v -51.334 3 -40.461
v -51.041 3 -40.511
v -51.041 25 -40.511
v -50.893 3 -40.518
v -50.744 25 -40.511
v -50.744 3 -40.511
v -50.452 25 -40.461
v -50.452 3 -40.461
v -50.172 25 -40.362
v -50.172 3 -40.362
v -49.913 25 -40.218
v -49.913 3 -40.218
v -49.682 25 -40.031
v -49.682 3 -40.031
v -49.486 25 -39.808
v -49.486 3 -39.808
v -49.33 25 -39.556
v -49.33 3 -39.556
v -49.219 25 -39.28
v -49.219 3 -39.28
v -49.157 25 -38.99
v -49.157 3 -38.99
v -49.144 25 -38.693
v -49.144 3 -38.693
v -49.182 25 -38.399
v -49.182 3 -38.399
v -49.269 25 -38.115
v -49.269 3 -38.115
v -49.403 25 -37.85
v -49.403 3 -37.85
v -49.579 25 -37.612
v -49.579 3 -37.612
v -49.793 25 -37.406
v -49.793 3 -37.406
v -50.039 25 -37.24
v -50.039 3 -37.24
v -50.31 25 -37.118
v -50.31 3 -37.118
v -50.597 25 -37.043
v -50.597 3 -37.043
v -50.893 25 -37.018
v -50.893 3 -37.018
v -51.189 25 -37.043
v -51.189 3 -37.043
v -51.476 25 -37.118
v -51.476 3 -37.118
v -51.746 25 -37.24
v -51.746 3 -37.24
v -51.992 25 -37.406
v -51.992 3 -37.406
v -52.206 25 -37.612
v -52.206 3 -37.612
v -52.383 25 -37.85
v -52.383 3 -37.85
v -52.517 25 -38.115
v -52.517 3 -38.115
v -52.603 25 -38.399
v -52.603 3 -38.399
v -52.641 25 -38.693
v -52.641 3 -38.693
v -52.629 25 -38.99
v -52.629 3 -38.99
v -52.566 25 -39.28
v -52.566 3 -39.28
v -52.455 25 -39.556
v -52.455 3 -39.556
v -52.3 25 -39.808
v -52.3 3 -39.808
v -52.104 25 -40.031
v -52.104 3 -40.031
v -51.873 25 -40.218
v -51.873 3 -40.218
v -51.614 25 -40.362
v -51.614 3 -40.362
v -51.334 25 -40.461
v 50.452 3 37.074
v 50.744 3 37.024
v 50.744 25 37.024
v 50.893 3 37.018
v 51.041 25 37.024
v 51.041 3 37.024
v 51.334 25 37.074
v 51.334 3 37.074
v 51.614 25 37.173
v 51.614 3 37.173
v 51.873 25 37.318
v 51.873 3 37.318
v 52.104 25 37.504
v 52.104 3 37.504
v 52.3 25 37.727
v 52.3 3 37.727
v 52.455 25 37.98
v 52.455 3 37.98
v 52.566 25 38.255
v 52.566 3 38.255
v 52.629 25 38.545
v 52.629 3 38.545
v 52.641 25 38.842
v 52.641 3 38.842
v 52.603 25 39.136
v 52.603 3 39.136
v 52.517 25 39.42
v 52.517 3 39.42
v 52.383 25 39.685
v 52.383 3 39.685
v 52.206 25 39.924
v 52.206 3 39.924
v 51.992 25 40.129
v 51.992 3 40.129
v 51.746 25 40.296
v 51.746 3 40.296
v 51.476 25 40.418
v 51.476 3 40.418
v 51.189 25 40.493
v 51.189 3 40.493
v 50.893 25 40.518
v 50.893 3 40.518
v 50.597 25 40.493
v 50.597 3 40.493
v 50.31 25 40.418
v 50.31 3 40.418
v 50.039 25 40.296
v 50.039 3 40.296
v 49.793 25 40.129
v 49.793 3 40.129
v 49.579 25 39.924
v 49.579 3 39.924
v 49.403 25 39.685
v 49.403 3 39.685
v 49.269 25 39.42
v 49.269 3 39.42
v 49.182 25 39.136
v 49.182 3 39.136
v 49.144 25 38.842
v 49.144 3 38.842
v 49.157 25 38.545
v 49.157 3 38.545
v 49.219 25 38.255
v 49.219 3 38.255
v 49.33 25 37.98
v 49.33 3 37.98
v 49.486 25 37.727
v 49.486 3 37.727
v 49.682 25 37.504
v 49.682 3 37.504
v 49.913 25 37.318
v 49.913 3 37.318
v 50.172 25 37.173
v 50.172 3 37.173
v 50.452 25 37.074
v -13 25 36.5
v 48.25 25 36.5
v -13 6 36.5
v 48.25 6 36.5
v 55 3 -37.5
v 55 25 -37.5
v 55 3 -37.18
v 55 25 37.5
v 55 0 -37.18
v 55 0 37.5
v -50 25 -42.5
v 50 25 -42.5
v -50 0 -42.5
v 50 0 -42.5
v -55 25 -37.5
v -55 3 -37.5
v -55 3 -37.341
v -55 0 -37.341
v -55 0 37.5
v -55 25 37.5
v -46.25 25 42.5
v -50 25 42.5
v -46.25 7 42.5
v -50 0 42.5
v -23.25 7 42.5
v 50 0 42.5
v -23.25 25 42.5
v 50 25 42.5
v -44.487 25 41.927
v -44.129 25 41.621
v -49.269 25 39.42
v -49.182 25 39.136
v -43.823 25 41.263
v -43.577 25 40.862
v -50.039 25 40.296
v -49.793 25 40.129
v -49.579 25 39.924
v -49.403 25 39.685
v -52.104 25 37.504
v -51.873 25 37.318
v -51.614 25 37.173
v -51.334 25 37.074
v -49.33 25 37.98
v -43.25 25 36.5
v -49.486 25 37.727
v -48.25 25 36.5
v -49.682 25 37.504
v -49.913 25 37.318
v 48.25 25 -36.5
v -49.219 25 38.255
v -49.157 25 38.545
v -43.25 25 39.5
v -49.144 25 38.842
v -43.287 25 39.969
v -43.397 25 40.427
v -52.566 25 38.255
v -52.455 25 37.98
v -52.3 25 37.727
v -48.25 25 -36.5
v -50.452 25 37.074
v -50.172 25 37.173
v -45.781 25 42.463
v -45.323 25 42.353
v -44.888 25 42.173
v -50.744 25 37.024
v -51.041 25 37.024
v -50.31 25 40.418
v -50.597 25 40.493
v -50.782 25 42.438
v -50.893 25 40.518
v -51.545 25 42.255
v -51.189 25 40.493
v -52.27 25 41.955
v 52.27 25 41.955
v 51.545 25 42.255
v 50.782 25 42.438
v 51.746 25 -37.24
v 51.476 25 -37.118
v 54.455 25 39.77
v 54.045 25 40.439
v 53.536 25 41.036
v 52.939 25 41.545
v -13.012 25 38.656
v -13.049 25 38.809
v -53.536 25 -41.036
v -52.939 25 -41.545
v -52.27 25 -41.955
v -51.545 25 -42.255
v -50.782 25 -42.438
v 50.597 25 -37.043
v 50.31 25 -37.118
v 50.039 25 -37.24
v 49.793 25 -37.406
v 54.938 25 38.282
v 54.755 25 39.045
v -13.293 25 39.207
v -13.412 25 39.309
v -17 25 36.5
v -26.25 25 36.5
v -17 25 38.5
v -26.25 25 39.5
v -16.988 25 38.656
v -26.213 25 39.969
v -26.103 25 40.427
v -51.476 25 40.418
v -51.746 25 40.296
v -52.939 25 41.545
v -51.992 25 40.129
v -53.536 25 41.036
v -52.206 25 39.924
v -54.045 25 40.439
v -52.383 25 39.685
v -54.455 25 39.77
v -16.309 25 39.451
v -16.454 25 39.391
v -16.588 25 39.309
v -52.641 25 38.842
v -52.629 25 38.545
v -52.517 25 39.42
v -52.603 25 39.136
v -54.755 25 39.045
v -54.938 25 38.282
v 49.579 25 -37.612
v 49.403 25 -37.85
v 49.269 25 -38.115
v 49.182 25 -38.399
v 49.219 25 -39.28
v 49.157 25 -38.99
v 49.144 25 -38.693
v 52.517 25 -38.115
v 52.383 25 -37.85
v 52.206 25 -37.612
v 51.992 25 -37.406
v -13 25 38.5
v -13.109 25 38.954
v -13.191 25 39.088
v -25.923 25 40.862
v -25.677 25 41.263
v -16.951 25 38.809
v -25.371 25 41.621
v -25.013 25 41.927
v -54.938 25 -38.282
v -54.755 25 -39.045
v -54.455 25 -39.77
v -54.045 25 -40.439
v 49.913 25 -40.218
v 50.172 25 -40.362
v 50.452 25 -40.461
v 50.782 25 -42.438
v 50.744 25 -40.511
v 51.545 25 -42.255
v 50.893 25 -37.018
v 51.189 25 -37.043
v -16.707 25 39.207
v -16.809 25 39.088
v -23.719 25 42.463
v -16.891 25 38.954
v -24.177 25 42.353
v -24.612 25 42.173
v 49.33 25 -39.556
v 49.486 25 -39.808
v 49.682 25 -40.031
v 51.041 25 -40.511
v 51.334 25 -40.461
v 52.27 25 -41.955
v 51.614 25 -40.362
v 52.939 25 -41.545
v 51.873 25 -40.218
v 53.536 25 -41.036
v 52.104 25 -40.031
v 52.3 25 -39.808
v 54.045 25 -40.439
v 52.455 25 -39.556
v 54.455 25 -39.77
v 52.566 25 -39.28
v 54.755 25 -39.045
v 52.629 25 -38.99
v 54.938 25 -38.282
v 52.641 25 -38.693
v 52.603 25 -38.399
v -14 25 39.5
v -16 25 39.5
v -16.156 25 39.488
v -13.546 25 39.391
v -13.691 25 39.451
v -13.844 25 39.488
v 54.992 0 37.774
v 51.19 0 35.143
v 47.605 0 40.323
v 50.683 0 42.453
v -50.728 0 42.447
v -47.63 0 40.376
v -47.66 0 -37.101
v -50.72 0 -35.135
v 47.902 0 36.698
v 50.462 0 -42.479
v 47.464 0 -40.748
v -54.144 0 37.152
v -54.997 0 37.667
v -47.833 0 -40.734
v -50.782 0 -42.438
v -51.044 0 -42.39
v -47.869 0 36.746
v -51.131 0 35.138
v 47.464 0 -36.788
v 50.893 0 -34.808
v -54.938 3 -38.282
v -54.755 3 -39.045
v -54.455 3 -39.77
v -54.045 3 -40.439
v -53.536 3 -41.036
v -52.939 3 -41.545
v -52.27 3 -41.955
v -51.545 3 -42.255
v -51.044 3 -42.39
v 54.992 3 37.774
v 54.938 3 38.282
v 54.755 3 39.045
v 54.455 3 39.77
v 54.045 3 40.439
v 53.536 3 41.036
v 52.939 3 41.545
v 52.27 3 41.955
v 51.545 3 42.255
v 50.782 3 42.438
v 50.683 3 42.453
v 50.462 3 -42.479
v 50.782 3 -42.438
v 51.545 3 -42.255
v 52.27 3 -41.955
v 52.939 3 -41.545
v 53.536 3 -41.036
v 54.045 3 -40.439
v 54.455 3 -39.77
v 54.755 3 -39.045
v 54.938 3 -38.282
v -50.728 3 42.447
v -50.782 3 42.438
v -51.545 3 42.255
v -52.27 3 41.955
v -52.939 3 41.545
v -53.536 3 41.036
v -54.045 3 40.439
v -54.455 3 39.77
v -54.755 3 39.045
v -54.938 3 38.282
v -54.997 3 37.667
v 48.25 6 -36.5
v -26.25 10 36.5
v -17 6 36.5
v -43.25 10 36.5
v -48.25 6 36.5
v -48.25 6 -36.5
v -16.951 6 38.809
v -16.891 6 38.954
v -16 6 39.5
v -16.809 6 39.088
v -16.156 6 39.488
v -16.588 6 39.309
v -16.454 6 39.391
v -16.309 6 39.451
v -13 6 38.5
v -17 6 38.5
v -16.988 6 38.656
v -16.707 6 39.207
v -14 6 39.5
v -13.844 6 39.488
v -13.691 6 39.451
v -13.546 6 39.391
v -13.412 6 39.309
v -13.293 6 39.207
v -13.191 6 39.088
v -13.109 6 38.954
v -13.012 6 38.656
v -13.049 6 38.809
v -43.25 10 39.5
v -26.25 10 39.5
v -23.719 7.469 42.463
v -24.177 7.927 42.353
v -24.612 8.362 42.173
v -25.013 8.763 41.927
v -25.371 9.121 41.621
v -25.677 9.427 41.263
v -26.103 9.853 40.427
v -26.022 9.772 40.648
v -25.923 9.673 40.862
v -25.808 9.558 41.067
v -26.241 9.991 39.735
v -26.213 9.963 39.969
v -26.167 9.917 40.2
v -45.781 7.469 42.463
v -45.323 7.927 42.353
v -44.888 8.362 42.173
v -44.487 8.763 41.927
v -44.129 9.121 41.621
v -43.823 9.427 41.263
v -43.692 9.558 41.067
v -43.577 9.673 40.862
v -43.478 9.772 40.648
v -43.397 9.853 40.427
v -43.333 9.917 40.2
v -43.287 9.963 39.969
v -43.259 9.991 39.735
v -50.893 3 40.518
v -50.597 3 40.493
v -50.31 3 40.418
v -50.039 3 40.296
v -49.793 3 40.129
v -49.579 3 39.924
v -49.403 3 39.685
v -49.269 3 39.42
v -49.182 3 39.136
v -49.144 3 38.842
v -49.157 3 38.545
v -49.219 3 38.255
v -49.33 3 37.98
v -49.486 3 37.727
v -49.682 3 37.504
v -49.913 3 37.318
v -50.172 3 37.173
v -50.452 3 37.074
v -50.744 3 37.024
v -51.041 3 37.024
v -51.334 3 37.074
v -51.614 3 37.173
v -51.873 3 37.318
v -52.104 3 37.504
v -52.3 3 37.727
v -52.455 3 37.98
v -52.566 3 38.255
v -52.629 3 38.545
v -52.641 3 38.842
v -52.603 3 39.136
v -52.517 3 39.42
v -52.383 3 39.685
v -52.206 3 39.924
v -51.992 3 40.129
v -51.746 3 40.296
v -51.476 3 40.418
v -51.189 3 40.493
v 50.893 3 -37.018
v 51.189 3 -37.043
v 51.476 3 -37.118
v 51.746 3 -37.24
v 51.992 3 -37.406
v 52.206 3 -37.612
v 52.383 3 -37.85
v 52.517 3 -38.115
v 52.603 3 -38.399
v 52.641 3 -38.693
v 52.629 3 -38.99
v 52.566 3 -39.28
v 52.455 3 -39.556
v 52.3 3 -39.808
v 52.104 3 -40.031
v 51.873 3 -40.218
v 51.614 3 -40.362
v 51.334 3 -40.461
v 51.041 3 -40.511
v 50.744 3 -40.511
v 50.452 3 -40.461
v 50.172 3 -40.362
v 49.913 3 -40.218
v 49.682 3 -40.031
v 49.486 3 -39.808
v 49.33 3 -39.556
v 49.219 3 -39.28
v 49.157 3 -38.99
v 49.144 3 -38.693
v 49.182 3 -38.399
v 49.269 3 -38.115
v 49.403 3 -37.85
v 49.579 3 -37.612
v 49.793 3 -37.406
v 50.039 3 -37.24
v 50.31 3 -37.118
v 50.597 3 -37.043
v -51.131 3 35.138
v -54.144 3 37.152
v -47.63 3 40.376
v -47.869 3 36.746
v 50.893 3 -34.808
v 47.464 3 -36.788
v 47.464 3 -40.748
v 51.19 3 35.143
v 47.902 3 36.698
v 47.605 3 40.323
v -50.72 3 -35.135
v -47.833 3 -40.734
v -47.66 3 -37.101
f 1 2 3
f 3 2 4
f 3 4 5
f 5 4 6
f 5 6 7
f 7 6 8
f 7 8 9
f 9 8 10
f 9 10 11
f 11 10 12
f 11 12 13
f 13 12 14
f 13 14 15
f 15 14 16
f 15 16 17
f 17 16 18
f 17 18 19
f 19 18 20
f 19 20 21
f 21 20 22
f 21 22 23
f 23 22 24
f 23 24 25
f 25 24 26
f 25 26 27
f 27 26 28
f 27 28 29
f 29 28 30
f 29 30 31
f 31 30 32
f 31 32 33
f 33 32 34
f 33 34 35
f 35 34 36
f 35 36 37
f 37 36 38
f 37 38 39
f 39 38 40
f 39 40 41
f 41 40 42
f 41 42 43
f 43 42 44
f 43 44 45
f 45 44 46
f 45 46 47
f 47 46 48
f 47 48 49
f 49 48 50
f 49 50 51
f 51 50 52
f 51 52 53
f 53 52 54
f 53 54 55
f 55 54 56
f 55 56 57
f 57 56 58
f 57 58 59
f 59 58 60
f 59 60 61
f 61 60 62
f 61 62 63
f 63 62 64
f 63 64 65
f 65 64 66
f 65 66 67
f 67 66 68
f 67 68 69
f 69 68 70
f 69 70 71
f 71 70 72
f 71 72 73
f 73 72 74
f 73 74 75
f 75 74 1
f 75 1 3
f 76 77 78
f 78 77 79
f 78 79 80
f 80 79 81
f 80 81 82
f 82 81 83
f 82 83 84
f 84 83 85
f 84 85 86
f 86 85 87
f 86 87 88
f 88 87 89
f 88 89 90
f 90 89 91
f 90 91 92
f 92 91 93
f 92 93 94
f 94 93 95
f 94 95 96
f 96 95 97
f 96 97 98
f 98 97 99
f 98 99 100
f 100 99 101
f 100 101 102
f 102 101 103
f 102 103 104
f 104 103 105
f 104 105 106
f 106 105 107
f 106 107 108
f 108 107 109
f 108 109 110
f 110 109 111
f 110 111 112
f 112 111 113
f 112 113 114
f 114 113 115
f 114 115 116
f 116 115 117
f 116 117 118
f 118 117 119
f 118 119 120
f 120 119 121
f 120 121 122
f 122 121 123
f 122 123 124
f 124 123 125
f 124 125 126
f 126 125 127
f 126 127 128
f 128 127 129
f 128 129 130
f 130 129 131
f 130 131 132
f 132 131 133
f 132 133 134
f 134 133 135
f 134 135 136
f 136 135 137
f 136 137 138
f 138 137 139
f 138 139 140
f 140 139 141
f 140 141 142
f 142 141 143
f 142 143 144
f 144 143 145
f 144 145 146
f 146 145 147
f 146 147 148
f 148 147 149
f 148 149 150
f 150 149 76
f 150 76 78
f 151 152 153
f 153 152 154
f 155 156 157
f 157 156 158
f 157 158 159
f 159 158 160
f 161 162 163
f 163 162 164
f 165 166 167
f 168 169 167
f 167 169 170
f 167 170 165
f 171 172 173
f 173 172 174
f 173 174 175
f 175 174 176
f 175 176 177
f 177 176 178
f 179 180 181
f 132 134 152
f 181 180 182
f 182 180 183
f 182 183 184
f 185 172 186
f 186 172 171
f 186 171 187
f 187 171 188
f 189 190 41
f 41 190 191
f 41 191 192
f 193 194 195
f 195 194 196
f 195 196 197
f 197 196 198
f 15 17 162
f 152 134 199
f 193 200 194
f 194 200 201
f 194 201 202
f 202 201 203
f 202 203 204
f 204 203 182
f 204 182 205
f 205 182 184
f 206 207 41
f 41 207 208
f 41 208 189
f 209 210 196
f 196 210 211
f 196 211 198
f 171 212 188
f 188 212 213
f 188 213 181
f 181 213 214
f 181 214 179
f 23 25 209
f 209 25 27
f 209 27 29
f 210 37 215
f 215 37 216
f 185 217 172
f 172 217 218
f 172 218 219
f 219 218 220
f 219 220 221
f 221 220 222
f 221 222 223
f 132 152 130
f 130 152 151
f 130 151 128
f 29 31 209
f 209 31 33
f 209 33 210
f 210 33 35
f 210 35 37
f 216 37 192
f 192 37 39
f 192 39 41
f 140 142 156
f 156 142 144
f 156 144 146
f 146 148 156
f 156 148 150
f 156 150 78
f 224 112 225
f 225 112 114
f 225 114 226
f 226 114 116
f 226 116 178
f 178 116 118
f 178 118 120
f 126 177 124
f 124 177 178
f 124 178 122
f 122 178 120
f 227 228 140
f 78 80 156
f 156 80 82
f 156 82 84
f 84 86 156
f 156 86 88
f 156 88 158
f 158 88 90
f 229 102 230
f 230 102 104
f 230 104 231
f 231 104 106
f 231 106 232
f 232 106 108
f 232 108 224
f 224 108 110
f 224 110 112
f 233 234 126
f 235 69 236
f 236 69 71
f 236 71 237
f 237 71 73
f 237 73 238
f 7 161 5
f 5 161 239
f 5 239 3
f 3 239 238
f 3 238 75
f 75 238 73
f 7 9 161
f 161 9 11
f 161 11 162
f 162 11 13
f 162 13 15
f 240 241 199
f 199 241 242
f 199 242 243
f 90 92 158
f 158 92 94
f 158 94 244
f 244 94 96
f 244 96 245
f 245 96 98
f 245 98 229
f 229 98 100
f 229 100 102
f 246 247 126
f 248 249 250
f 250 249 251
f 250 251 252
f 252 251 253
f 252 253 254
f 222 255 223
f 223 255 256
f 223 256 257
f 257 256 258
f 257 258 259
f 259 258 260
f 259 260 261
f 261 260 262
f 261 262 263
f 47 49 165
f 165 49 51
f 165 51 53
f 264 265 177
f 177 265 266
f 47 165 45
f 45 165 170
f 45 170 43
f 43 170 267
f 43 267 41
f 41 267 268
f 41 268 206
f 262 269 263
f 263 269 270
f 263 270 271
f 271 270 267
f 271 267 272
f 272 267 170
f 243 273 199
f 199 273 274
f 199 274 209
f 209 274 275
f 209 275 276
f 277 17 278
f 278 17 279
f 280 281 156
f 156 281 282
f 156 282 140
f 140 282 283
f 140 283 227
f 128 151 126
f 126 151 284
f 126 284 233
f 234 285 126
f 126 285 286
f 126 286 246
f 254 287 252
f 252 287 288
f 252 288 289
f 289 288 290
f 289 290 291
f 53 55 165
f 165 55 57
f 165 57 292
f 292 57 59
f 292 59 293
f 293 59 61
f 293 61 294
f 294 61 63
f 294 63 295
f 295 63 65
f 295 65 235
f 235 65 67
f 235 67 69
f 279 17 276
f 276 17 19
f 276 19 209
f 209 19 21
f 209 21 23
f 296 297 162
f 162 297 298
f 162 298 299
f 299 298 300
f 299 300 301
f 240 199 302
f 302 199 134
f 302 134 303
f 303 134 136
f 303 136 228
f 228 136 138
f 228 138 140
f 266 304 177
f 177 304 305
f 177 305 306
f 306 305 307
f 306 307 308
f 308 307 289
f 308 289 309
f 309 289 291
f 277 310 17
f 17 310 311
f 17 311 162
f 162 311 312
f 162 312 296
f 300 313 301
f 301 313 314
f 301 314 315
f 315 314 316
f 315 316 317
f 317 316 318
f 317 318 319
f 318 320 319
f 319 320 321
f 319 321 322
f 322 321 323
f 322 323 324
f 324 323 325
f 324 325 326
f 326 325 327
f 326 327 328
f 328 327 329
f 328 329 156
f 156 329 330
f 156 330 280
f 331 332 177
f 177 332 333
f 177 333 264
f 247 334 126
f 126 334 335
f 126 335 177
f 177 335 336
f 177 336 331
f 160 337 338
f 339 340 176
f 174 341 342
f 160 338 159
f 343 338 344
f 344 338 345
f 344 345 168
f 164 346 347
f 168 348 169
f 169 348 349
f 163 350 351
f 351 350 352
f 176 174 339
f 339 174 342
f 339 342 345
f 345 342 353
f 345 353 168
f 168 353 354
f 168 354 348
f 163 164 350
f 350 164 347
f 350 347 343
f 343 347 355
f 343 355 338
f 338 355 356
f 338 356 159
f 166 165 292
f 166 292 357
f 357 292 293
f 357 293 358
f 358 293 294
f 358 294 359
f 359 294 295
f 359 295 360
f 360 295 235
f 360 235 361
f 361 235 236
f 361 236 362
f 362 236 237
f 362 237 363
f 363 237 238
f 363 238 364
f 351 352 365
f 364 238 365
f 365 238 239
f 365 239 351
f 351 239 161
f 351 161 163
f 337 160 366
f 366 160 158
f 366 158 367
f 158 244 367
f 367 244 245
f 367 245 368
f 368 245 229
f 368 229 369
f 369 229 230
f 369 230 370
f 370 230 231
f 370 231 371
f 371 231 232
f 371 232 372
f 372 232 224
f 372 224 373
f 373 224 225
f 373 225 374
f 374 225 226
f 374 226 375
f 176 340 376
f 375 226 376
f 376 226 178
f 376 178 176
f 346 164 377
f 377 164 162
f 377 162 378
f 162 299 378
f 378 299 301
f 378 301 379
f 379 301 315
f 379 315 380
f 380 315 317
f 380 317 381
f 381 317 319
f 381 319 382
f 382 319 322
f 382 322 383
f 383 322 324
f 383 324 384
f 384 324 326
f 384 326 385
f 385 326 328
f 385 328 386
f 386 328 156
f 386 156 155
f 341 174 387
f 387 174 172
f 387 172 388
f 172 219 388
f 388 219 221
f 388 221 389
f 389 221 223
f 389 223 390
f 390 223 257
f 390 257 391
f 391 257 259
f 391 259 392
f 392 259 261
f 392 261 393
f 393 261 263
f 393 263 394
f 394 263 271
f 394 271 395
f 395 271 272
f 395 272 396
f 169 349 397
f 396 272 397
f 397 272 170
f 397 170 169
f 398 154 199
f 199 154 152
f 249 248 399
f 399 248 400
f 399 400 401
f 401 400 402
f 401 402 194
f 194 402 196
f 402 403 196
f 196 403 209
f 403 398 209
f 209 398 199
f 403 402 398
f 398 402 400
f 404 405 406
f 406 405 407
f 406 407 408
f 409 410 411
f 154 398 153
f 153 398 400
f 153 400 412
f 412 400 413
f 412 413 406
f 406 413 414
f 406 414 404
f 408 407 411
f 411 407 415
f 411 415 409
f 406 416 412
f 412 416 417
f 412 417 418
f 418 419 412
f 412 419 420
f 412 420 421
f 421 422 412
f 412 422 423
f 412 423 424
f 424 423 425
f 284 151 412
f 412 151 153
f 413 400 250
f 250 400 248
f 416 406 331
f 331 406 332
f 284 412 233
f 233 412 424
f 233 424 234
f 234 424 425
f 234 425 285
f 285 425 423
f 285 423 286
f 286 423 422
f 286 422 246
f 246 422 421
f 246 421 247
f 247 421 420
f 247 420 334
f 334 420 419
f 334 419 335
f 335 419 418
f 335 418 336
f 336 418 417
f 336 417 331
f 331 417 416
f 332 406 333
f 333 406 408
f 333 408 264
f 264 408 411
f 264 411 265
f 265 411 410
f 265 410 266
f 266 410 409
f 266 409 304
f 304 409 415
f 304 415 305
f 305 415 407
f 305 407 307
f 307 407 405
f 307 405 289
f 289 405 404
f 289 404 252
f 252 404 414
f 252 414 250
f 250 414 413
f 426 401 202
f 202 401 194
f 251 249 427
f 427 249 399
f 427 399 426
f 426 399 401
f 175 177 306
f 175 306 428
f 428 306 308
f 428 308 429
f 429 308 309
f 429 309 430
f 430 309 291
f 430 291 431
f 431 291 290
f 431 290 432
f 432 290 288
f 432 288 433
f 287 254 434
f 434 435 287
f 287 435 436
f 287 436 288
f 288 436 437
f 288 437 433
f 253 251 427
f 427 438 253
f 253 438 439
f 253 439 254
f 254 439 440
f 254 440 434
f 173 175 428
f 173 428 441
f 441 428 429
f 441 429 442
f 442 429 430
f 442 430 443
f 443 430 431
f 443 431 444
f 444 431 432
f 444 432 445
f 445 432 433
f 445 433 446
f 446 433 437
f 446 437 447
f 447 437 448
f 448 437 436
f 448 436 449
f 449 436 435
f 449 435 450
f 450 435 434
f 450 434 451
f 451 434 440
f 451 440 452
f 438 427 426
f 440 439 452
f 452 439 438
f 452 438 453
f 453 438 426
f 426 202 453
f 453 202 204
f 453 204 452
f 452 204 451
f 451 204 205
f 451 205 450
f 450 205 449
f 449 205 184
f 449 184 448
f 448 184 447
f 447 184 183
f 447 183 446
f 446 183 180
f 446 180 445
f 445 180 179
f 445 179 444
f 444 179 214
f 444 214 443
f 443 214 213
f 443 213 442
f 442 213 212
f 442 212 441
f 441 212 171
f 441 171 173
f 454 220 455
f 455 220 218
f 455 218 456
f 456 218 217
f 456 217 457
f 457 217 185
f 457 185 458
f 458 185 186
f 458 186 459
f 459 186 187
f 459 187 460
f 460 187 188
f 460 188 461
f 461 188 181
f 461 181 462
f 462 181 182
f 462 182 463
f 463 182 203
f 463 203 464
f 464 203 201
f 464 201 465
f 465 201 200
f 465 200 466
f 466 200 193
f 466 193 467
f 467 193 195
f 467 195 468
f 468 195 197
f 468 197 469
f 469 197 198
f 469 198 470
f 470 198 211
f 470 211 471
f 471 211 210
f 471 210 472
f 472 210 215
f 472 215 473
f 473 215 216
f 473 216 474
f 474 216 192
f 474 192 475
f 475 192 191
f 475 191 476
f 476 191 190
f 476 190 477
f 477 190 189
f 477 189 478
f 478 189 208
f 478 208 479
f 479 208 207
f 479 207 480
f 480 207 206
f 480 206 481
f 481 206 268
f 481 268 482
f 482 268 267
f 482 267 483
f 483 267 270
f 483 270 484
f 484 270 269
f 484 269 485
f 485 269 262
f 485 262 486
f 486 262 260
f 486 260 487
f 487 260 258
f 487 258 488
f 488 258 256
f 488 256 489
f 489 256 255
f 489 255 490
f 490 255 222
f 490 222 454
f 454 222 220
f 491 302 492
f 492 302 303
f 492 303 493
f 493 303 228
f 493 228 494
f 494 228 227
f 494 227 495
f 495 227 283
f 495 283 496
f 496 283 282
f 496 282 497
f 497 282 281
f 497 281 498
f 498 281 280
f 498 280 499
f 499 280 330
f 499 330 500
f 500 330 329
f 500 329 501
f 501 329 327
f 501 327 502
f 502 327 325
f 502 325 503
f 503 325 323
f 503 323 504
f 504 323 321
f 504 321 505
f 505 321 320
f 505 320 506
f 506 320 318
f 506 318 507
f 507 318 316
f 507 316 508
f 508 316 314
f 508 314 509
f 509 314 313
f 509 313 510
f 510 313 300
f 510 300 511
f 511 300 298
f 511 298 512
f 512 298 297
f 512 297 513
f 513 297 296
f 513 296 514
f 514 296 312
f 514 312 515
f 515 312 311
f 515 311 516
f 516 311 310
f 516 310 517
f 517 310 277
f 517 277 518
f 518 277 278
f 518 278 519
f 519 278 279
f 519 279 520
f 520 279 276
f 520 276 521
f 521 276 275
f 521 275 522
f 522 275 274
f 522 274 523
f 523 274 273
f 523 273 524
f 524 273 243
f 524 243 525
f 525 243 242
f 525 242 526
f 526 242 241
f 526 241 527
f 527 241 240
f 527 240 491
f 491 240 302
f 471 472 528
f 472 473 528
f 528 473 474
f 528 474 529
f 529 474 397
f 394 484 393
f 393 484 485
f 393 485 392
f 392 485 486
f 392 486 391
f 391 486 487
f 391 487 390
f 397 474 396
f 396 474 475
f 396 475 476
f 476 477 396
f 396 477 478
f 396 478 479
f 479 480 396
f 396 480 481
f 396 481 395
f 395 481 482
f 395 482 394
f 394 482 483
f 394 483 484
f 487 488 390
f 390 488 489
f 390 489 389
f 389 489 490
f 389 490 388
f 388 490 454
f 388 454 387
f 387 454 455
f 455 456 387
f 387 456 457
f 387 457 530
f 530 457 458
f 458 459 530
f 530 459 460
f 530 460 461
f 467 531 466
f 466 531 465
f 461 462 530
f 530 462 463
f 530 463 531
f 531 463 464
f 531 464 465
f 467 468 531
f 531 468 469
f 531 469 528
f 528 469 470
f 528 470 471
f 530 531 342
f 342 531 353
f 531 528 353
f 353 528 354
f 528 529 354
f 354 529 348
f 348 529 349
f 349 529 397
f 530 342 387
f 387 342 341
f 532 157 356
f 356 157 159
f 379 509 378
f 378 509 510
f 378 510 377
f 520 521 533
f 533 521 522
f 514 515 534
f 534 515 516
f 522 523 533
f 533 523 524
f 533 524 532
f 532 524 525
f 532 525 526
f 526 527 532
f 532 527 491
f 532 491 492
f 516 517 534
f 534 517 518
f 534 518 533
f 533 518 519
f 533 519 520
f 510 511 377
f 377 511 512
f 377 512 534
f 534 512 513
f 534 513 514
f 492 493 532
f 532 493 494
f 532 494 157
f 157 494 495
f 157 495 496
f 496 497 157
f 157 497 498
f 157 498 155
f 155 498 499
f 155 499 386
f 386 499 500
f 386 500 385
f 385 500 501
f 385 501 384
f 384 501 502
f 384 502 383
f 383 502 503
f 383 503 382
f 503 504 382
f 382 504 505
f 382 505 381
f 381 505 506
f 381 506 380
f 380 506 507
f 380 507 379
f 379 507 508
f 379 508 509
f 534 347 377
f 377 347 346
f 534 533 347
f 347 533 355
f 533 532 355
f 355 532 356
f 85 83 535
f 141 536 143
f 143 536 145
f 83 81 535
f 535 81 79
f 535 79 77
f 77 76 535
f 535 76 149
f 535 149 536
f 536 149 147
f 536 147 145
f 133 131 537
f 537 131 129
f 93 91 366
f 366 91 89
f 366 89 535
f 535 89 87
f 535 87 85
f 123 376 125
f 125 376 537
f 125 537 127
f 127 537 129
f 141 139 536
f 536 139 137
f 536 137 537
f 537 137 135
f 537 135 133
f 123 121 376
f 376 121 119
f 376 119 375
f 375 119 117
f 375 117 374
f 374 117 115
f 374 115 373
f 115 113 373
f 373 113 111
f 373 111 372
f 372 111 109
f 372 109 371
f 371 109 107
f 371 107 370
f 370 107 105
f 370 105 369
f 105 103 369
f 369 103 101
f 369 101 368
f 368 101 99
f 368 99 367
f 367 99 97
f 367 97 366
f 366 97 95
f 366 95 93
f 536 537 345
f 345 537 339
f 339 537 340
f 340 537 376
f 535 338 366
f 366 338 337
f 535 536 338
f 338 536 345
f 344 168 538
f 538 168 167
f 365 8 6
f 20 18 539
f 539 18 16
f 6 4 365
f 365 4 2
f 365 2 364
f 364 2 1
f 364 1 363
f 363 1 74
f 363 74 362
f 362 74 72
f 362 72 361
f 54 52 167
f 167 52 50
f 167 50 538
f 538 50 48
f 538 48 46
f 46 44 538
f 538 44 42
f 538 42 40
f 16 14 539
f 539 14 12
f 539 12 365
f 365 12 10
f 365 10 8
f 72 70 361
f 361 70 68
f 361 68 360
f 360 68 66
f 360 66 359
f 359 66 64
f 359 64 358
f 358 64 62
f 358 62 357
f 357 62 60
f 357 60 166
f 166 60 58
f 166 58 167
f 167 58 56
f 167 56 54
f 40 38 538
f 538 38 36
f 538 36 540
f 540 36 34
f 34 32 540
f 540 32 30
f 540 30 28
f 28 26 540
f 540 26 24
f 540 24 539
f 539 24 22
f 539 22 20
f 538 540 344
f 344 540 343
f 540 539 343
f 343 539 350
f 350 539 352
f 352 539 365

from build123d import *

# Parameters (mm, degrees)
SKETCH1_W                 = 110
SKETCH1_H                 = 85
BASE_DEPTH                = 25
FILLET1_R                 = 5
SKETCH2_W                 = 96.5
SKETCH2_H                 = 73
BASKET_DEPTH              = 19
SKETCH3_W                 = 4
SKETCH3_H                 = 6
WIRE_CHANNEL_DEPTH        = 19
WIRE_CHANNEL_ROUNDING_R   = 1
SWITCH_CUT_OUT_REACH      = 106.283
SKETCH5_W                 = 17
SKETCH5_H                 = 15
SWITCH_CUT_OUT_ROUNDING_R = 3
SKETCH14_R                = 1.75
CORNER_HOLES_DEPTH        = 74.866433513
BOTTOM_NUT_CUT_OUT_DEPTH  = 3


with BuildPart() as part:
    # Sketch1 → Base (new body)
    with BuildSketch(Plane(origin=(0, 0, 0), x_dir=(1, 0, 0), z_dir=(0, 1, 0))):
        Rectangle(SKETCH1_W, SKETCH1_H)
    extrude(amount=BASE_DEPTH)

    # Fillet1
    fillet1_edges = [part.edges().sort_by_distance(p)[0] for p in [
        (55, 12.5, 42.5),
        (-55, 12.5, 42.5),
        (-55, 12.5, -42.5),
        (55, 12.5, -42.5),
    ]]
    fillet(fillet1_edges, radius=FILLET1_R)

    # Sketch2 → Basket (cut)
    with BuildSketch(Plane(origin=(0, 25, 0), x_dir=(1, 0, 0), z_dir=(0, 1, 0))):
        Rectangle(SKETCH2_W, SKETCH2_H)
    extrude(amount=-BASKET_DEPTH, mode=Mode.SUBTRACT)

    # Sketch3 → Wire Channel (cut)
    with BuildSketch(Plane(origin=(0, 25, 0), x_dir=(1, 0, 0), z_dir=(0, 1, 0))):
        with Locations((-15, -36.5)):
            Rectangle(SKETCH3_W, SKETCH3_H)
    extrude(amount=-WIRE_CHANNEL_DEPTH, mode=Mode.SUBTRACT)

    # Wire Channel Rounding
    wire_channel_rounding_edges = [part.edges().sort_by_distance(p)[0] for p in [
        (-17, 15.5, 39.5),
        (-13, 15.5, 39.5),
    ]]
    fillet(wire_channel_rounding_edges, radius=WIRE_CHANNEL_ROUNDING_R)

    # Sketch5 → Switch Cut-out (cut, up to next)
    with BuildSketch(Plane.XY.offset(42.5), mode=Mode.PRIVATE) as switch_cut_out_sk1:
        with Locations((-34.75, 17.5)):
            Rectangle(SKETCH5_W, SKETCH5_H)
    switch_cut_out_tool1 = extrude(switch_cut_out_sk1.sketch, amount=-SWITCH_CUT_OUT_REACH, mode=Mode.PRIVATE) & part.part
    add(switch_cut_out_tool1.solids().sort_by_distance((-34.75, 17.5, 42.5))[0], mode=Mode.SUBTRACT)

    # Switch Cut-out Rounding
    switch_cut_out_rounding_edges = [part.edges().sort_by_distance(p)[0] for p in [
        (-43.25, 17.5, 42.5),
        (-34.75, 10, 42.5),
        (-26.25, 17.5, 42.5),
    ]]
    fillet(switch_cut_out_rounding_edges, radius=SWITCH_CUT_OUT_ROUNDING_R)

    # Sketch14 → Corner Holes (cut, through all)
    with BuildSketch(Plane(origin=(0, 25, 0), x_dir=(1, 0, 0), z_dir=(0, 1, 0))):
        with Locations(Location((-50.892766953, 38.767766953, 0), (0, 0, 270))):
            Circle(SKETCH14_R)
        with Locations(Location((50.892766953, 38.767766953, 0), (0, 0, 270))):
            Circle(SKETCH14_R)
        with Locations(Location((50.892766953, -38.767766953, 0), (0, 0, 270))):
            Circle(SKETCH14_R)
        with Locations(Location((-50.892766953, -38.767766953, 0), (0, 0, 270))):
            Circle(SKETCH14_R)
    extrude(amount=-CORNER_HOLES_DEPTH, mode=Mode.SUBTRACT)

    # Sketch15 → Bottom Nut Cut-out (cut)
    with BuildSketch(Plane.XZ):
        Polygon((-50.64101323, 42.388469214), (-52.178282629, 43.416097239), (-55.727023172, 38.10739593), (-54.143831126, 37.15203238), (-51.13140477, 35.13829702), (-47.868872697, 36.746365575), (-47.630234881, 40.375835508), align=None)
        Polygon((50.595962101, 42.39294376), (52.091508492, 43.427758232), (55.676210978, 38.247033564), (54.180664587, 37.212219092), (51.189571805, 35.142590146), (47.901674171, 36.698138008), (47.604869319, 40.323314814), align=None)
        Polygon((54.167766953, -36.699113605), (55.742766953, -37.608440279), (52.313760602, -43.547653498), (50.738760602, -42.638326824), (47.463760602, -40.747504693), (47.463760602, -36.788029213), (50.892766953, -34.808291473), align=None)
        Polygon((-53.9527362, -36.801402743), (-55.569189191, -37.634817242), (-52.682156679, -43.23437466), (-51.065703688, -42.400960161), (-47.832797706, -40.734131163), (-47.65986097, -37.100937955), (-50.719830218, -35.134573745), align=None)
    extrude(amount=-BOTTOM_NUT_CUT_OUT_DEPTH, mode=Mode.SUBTRACT)


solid = part.part
